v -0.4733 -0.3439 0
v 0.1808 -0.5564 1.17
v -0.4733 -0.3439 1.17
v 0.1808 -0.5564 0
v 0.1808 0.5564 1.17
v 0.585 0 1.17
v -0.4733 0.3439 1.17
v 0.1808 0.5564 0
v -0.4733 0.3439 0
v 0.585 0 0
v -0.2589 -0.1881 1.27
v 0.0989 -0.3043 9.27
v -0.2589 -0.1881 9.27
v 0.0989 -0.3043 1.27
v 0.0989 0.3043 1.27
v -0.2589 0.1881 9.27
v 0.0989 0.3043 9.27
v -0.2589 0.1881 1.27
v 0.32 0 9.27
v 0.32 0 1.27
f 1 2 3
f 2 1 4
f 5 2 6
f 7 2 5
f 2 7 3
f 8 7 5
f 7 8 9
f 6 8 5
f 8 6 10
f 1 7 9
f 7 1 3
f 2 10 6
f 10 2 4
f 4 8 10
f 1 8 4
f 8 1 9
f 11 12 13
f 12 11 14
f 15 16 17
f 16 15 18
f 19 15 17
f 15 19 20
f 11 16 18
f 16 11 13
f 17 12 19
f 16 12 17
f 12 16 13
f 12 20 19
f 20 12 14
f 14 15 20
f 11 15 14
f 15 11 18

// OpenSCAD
module 075_PRP2510S() {
   color("Gold")
   //tip part 1
   translate([0,0,0])cylinder(h=1.17,d=1.17,center=false);
   //tip part 2
   //shaft 
   color("Gold")
   translate([0,0,1.27])cylinder(h=8,d=0.64,center=false);
}
075_PRP2510S();
